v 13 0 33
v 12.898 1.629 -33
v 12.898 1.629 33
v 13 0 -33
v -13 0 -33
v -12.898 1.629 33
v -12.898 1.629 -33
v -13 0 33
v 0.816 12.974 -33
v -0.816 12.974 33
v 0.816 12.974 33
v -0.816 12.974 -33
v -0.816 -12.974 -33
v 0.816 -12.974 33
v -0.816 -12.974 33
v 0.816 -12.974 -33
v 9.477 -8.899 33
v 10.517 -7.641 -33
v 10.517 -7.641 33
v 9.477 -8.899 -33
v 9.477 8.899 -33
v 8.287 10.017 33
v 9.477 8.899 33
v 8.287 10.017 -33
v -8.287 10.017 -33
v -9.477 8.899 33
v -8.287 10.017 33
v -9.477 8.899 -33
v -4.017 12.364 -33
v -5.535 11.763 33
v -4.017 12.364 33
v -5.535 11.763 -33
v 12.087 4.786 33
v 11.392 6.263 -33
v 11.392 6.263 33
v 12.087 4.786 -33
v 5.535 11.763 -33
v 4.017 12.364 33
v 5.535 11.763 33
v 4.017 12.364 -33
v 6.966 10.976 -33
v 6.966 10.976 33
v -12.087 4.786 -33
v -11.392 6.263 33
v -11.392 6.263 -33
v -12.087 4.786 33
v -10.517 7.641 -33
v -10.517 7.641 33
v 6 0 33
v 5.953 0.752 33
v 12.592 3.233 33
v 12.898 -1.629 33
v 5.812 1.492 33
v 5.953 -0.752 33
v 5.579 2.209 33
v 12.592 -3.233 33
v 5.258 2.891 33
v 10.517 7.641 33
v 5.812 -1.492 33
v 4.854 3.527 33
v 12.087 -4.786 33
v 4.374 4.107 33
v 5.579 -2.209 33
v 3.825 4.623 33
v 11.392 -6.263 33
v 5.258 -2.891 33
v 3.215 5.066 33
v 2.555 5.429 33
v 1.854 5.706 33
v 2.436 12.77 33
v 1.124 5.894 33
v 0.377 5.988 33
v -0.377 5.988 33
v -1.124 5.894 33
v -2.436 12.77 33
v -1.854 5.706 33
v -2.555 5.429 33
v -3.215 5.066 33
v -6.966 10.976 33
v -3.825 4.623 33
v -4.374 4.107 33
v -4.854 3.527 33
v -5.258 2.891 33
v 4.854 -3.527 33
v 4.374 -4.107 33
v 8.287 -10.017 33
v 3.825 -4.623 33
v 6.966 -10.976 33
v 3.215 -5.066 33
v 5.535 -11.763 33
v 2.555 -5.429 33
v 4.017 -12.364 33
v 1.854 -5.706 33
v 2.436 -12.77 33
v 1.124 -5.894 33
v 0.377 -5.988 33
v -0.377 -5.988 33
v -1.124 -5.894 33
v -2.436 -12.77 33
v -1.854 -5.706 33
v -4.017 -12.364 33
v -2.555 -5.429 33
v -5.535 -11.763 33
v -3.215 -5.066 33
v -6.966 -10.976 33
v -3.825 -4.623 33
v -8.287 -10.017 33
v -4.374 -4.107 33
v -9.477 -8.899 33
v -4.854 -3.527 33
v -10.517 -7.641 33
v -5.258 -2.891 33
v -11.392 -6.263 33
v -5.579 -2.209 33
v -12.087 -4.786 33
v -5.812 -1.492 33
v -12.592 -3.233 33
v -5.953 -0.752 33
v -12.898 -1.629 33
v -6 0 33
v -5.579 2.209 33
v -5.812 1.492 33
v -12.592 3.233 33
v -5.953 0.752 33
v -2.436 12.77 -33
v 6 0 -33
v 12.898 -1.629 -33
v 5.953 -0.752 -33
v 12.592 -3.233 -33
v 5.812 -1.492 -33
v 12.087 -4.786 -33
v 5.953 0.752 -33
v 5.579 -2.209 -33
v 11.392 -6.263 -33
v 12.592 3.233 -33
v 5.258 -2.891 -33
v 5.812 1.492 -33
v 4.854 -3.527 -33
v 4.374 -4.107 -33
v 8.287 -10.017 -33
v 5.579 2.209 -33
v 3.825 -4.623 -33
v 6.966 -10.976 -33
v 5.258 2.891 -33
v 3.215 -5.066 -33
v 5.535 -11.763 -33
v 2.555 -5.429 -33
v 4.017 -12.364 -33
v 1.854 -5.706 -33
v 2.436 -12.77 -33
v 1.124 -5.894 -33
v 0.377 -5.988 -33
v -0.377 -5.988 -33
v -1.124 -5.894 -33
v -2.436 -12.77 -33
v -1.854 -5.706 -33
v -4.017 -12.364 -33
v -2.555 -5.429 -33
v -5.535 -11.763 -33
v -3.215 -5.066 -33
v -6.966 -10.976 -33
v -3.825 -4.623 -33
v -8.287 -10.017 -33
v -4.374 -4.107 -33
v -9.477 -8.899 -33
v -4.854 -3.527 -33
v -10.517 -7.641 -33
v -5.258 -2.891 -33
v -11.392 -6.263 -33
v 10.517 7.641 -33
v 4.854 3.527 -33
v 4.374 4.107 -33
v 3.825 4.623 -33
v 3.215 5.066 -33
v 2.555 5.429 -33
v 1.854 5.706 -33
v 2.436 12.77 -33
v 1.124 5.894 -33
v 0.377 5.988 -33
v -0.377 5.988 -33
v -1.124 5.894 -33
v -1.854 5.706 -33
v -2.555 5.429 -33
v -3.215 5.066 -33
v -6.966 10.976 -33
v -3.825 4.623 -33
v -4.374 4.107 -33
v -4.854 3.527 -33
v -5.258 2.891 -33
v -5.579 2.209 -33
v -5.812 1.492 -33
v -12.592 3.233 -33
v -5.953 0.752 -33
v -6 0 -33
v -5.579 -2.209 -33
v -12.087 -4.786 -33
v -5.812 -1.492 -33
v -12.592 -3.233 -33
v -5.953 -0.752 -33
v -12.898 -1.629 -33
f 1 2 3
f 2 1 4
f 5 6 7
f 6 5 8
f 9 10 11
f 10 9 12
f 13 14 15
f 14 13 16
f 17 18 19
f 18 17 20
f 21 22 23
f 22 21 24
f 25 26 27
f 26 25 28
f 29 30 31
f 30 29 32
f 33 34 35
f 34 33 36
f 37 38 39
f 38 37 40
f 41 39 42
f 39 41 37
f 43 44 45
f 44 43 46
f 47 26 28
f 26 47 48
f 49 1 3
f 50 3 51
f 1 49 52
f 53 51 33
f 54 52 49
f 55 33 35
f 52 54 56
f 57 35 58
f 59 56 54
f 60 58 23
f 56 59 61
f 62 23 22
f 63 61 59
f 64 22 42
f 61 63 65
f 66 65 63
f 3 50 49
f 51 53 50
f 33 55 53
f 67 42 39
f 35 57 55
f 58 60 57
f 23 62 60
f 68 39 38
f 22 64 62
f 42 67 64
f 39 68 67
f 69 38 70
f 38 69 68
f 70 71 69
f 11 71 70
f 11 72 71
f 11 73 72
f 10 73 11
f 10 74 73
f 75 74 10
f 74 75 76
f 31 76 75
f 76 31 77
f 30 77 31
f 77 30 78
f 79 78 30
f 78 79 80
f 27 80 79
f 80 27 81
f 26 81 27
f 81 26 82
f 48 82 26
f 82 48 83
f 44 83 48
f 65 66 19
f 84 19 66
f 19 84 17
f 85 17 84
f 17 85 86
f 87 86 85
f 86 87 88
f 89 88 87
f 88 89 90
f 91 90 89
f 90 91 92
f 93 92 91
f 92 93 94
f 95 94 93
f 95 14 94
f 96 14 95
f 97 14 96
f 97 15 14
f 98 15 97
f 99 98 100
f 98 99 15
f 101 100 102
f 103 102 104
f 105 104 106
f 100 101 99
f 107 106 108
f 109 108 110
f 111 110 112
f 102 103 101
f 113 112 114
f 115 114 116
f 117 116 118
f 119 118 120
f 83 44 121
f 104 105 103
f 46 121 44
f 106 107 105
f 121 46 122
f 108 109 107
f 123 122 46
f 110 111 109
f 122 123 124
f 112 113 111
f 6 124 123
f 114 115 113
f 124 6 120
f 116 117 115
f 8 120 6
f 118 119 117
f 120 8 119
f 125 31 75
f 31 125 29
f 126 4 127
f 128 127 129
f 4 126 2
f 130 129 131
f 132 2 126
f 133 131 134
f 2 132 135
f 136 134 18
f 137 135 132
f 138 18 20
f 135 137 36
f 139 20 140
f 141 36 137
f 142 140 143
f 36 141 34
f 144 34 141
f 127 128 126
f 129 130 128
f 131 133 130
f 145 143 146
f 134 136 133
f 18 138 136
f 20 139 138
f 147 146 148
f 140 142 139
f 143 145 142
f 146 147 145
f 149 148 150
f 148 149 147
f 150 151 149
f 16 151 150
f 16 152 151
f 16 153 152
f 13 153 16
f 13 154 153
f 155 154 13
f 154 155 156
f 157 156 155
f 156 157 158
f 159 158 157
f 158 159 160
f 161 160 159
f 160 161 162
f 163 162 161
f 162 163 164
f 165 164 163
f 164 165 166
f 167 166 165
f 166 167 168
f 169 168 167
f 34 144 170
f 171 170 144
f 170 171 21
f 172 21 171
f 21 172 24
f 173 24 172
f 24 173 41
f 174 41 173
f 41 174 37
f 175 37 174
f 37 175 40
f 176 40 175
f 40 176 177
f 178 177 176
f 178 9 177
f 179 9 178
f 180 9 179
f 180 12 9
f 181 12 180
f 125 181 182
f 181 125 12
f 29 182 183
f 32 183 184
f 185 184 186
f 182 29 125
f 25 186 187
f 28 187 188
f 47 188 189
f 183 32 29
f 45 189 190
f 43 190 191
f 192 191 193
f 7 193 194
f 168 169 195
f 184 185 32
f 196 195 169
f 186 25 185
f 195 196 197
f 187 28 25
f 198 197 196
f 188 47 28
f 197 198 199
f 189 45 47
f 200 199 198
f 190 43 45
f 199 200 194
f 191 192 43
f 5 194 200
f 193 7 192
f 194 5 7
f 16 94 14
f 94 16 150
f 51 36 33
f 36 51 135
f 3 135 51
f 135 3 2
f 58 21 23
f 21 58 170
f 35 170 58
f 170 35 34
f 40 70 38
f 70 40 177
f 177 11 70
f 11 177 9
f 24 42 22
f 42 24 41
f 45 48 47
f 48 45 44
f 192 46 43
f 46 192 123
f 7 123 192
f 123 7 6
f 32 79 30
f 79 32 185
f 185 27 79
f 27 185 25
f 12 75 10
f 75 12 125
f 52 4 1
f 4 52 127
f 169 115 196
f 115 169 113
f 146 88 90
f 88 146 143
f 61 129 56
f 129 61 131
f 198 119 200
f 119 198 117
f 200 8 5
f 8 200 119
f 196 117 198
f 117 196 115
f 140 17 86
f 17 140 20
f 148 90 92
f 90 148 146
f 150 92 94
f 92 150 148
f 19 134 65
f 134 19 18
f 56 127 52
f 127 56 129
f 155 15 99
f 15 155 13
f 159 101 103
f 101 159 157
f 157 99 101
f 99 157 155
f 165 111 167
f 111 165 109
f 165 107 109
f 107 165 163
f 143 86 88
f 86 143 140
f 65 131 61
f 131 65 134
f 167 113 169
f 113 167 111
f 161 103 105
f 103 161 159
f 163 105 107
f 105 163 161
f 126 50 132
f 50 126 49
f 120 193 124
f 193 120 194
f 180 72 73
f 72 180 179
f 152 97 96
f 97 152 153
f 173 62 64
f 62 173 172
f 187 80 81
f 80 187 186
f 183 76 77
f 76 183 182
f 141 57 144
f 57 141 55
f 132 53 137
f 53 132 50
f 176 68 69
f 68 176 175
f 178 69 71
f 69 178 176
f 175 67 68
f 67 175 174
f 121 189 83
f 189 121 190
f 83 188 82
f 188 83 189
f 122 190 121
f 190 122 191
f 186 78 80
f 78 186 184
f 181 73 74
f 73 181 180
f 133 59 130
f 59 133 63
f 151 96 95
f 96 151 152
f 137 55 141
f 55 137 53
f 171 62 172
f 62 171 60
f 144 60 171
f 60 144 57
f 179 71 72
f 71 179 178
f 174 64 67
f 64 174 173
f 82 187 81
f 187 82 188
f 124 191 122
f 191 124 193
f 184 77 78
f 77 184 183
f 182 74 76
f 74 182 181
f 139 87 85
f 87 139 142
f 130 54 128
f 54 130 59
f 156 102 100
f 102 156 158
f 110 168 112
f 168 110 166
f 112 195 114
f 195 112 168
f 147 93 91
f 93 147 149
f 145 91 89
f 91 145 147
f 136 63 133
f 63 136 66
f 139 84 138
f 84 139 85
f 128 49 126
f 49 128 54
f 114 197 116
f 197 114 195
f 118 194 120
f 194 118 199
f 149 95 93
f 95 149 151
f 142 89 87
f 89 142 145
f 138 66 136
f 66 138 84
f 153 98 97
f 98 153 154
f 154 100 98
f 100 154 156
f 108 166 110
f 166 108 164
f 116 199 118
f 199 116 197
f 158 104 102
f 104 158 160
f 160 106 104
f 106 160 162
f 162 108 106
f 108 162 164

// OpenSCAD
$fn = 50;


difference() {
	union() {
		translate(v = [0, 0, -33.0000000000]) {
			cylinder(h = 66, r = 13.0000000000);
		}
	}
	union() {
		translate(v = [0, 0, -100.0000000000]) {
			cylinder(h = 200, r = 6);
		}
	}
}
